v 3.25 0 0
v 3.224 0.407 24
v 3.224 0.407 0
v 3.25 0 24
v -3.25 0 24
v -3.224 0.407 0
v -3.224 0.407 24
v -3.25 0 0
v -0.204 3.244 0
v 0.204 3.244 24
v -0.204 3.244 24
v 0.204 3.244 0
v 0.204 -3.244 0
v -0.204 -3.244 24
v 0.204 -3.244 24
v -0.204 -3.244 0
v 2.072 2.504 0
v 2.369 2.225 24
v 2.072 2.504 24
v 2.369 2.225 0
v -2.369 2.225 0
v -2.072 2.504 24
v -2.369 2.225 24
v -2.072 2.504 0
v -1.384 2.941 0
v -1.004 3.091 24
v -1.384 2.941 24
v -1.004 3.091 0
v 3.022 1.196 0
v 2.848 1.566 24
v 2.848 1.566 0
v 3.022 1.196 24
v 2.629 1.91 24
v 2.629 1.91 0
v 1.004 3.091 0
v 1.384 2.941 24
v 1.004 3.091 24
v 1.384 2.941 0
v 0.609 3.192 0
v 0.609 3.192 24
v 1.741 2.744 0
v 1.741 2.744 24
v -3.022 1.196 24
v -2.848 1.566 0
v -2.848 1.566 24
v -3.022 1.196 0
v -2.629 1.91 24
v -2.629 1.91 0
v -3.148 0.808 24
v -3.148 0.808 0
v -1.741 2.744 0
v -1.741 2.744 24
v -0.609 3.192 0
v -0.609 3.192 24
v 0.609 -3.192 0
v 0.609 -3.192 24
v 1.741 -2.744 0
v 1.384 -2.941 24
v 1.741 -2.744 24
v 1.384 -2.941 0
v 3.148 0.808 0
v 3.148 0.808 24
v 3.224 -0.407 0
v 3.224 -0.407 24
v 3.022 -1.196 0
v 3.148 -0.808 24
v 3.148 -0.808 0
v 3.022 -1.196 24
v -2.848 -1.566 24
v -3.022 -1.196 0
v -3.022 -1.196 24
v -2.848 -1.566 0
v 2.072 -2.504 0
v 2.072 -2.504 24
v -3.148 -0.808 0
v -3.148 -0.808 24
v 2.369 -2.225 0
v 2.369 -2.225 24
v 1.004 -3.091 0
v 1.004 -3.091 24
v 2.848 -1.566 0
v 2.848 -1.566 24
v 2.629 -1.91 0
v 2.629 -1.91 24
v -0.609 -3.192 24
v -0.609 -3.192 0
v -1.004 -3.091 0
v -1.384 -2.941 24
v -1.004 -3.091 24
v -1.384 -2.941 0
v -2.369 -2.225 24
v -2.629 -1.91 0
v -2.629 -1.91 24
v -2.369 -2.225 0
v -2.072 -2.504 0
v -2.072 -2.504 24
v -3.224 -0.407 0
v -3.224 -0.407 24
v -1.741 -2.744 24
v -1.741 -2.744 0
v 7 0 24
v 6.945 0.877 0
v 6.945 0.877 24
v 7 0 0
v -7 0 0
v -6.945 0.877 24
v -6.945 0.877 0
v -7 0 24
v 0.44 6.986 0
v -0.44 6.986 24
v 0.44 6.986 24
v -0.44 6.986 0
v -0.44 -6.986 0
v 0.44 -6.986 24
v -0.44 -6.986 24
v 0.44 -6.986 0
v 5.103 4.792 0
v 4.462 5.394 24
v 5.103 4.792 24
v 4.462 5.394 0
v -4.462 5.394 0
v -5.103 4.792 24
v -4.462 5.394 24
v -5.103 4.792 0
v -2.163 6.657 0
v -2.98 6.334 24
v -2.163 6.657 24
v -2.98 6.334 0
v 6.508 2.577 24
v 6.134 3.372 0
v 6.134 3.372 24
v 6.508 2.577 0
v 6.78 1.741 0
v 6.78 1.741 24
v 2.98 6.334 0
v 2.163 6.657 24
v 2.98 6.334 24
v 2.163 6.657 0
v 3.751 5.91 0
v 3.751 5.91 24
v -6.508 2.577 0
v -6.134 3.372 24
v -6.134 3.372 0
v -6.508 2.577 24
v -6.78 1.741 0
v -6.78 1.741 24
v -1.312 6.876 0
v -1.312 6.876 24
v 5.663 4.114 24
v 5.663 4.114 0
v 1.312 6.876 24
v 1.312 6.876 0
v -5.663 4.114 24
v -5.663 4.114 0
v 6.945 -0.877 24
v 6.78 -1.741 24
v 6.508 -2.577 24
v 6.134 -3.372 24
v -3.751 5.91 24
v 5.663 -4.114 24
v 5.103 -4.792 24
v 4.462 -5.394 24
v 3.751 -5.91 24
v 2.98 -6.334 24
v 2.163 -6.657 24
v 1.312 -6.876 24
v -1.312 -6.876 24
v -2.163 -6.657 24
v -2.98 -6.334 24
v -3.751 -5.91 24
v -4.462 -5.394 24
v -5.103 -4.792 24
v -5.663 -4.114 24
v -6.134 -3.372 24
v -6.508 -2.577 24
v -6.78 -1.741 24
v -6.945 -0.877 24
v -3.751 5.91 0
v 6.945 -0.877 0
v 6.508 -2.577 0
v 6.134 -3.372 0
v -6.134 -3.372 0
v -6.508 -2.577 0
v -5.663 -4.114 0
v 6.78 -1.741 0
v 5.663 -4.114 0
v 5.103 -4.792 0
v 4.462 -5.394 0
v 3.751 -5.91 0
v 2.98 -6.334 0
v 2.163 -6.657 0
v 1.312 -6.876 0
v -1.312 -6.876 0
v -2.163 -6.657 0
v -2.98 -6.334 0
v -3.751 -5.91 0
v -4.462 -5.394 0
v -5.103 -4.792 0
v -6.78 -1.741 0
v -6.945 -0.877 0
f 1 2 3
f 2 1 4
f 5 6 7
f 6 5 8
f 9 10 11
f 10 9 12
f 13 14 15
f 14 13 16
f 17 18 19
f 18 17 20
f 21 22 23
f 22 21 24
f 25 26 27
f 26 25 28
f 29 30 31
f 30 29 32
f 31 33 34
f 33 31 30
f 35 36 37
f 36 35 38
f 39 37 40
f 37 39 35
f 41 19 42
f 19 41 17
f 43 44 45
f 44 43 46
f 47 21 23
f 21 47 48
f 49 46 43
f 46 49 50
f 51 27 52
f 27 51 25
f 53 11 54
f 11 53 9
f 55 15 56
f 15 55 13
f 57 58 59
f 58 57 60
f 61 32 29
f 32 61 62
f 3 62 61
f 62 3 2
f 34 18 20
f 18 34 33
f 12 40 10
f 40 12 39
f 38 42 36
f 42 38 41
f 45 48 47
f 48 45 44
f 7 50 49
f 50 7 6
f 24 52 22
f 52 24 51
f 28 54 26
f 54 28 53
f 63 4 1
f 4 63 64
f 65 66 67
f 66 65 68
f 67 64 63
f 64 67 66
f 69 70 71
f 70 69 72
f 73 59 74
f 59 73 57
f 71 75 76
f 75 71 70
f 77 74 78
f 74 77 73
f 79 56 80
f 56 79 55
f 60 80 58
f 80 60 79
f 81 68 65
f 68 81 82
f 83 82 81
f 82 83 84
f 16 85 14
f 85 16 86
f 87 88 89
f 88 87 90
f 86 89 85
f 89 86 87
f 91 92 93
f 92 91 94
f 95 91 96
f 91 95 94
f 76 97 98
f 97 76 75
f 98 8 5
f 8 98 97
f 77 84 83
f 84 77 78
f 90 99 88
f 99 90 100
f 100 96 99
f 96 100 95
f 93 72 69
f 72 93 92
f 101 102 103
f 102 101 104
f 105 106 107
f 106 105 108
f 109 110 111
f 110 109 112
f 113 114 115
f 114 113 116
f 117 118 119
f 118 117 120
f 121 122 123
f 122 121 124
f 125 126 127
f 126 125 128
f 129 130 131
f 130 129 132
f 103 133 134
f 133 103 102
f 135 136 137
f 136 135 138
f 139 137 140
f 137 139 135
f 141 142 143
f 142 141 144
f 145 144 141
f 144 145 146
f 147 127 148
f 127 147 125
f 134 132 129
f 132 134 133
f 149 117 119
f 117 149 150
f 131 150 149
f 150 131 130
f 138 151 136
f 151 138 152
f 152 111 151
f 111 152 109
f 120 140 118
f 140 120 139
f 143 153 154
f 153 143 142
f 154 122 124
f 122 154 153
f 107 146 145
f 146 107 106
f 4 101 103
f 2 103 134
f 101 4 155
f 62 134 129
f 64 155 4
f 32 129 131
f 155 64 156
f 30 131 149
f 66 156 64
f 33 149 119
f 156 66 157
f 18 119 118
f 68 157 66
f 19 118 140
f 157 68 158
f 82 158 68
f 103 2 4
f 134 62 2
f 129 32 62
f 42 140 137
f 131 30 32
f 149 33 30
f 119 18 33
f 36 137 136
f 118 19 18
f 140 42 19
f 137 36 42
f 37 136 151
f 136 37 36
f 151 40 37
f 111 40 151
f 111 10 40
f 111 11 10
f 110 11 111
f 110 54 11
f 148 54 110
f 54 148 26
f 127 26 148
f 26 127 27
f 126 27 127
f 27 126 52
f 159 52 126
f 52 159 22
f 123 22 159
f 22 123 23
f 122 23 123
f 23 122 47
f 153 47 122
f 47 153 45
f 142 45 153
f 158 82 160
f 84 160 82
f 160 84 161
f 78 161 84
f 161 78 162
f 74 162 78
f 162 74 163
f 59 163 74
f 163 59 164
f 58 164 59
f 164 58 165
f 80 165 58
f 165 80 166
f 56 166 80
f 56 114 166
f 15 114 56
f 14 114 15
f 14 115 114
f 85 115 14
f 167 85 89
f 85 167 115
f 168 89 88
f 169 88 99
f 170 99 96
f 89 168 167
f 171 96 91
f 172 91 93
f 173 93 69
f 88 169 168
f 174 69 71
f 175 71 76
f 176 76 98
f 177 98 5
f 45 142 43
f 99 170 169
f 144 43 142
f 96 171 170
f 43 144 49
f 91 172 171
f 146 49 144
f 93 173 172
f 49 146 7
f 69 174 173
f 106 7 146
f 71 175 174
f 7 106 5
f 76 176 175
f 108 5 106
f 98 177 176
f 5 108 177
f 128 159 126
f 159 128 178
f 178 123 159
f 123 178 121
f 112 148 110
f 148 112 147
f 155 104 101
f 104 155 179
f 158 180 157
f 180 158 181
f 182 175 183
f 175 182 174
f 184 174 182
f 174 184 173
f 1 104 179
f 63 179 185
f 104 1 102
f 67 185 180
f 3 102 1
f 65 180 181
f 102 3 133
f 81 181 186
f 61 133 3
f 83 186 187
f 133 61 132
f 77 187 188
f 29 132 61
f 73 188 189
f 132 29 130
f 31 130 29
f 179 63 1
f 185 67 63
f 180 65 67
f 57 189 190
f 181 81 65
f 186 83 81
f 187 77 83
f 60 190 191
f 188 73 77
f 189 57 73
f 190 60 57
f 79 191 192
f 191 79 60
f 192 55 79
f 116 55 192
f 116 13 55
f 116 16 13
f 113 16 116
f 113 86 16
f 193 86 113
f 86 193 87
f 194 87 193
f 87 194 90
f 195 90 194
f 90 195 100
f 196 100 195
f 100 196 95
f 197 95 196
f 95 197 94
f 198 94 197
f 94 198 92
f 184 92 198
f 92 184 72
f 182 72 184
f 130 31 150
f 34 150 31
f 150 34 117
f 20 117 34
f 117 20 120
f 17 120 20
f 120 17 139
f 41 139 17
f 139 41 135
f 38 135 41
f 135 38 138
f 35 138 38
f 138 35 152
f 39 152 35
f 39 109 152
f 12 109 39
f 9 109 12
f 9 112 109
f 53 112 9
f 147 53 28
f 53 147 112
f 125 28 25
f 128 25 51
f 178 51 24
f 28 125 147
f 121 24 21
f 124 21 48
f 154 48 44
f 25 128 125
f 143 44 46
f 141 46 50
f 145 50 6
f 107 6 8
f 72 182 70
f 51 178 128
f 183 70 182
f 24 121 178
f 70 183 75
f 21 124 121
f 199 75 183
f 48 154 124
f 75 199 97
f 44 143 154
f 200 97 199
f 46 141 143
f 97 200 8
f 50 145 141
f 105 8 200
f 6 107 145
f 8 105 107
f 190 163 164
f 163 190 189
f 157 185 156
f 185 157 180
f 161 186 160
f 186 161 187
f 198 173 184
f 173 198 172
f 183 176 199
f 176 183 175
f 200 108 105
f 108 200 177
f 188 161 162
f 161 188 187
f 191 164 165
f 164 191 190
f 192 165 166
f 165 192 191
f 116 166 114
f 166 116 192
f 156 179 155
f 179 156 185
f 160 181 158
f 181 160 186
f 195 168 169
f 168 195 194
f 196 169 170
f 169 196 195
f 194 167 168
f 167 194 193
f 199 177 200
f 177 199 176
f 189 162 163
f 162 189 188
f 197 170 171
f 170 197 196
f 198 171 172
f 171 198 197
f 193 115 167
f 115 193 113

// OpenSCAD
$fn = 50;


difference() {
	union() {
		translate(v = [0, 0, 0]) {
			rotate(a = [0, 0, 0]) {
				cylinder(h = 24, r = 7.0000000000);
			}
		}
	}
	union() {
		translate(v = [0.0000000000, 0.0000000000, 0]) {
			rotate(a = [0, 0, 0]) {
				translate(v = [0, 0, -50]) {
					rotate(a = [0, 0, 0]) {
						cylinder(h = 100, r = 3.2500000000);
					}
				}
			}
		}
		translate(v = [0.0000000000, 0.0000000000, 0]) {
			rotate(a = [0, 0, 0]) {
				translate(v = [0, 0, -50]) {
					rotate(a = [0, 0, 0]) {
						cylinder(h = 100, r = 1.8000000000);
					}
				}
			}
		}
	}
}
